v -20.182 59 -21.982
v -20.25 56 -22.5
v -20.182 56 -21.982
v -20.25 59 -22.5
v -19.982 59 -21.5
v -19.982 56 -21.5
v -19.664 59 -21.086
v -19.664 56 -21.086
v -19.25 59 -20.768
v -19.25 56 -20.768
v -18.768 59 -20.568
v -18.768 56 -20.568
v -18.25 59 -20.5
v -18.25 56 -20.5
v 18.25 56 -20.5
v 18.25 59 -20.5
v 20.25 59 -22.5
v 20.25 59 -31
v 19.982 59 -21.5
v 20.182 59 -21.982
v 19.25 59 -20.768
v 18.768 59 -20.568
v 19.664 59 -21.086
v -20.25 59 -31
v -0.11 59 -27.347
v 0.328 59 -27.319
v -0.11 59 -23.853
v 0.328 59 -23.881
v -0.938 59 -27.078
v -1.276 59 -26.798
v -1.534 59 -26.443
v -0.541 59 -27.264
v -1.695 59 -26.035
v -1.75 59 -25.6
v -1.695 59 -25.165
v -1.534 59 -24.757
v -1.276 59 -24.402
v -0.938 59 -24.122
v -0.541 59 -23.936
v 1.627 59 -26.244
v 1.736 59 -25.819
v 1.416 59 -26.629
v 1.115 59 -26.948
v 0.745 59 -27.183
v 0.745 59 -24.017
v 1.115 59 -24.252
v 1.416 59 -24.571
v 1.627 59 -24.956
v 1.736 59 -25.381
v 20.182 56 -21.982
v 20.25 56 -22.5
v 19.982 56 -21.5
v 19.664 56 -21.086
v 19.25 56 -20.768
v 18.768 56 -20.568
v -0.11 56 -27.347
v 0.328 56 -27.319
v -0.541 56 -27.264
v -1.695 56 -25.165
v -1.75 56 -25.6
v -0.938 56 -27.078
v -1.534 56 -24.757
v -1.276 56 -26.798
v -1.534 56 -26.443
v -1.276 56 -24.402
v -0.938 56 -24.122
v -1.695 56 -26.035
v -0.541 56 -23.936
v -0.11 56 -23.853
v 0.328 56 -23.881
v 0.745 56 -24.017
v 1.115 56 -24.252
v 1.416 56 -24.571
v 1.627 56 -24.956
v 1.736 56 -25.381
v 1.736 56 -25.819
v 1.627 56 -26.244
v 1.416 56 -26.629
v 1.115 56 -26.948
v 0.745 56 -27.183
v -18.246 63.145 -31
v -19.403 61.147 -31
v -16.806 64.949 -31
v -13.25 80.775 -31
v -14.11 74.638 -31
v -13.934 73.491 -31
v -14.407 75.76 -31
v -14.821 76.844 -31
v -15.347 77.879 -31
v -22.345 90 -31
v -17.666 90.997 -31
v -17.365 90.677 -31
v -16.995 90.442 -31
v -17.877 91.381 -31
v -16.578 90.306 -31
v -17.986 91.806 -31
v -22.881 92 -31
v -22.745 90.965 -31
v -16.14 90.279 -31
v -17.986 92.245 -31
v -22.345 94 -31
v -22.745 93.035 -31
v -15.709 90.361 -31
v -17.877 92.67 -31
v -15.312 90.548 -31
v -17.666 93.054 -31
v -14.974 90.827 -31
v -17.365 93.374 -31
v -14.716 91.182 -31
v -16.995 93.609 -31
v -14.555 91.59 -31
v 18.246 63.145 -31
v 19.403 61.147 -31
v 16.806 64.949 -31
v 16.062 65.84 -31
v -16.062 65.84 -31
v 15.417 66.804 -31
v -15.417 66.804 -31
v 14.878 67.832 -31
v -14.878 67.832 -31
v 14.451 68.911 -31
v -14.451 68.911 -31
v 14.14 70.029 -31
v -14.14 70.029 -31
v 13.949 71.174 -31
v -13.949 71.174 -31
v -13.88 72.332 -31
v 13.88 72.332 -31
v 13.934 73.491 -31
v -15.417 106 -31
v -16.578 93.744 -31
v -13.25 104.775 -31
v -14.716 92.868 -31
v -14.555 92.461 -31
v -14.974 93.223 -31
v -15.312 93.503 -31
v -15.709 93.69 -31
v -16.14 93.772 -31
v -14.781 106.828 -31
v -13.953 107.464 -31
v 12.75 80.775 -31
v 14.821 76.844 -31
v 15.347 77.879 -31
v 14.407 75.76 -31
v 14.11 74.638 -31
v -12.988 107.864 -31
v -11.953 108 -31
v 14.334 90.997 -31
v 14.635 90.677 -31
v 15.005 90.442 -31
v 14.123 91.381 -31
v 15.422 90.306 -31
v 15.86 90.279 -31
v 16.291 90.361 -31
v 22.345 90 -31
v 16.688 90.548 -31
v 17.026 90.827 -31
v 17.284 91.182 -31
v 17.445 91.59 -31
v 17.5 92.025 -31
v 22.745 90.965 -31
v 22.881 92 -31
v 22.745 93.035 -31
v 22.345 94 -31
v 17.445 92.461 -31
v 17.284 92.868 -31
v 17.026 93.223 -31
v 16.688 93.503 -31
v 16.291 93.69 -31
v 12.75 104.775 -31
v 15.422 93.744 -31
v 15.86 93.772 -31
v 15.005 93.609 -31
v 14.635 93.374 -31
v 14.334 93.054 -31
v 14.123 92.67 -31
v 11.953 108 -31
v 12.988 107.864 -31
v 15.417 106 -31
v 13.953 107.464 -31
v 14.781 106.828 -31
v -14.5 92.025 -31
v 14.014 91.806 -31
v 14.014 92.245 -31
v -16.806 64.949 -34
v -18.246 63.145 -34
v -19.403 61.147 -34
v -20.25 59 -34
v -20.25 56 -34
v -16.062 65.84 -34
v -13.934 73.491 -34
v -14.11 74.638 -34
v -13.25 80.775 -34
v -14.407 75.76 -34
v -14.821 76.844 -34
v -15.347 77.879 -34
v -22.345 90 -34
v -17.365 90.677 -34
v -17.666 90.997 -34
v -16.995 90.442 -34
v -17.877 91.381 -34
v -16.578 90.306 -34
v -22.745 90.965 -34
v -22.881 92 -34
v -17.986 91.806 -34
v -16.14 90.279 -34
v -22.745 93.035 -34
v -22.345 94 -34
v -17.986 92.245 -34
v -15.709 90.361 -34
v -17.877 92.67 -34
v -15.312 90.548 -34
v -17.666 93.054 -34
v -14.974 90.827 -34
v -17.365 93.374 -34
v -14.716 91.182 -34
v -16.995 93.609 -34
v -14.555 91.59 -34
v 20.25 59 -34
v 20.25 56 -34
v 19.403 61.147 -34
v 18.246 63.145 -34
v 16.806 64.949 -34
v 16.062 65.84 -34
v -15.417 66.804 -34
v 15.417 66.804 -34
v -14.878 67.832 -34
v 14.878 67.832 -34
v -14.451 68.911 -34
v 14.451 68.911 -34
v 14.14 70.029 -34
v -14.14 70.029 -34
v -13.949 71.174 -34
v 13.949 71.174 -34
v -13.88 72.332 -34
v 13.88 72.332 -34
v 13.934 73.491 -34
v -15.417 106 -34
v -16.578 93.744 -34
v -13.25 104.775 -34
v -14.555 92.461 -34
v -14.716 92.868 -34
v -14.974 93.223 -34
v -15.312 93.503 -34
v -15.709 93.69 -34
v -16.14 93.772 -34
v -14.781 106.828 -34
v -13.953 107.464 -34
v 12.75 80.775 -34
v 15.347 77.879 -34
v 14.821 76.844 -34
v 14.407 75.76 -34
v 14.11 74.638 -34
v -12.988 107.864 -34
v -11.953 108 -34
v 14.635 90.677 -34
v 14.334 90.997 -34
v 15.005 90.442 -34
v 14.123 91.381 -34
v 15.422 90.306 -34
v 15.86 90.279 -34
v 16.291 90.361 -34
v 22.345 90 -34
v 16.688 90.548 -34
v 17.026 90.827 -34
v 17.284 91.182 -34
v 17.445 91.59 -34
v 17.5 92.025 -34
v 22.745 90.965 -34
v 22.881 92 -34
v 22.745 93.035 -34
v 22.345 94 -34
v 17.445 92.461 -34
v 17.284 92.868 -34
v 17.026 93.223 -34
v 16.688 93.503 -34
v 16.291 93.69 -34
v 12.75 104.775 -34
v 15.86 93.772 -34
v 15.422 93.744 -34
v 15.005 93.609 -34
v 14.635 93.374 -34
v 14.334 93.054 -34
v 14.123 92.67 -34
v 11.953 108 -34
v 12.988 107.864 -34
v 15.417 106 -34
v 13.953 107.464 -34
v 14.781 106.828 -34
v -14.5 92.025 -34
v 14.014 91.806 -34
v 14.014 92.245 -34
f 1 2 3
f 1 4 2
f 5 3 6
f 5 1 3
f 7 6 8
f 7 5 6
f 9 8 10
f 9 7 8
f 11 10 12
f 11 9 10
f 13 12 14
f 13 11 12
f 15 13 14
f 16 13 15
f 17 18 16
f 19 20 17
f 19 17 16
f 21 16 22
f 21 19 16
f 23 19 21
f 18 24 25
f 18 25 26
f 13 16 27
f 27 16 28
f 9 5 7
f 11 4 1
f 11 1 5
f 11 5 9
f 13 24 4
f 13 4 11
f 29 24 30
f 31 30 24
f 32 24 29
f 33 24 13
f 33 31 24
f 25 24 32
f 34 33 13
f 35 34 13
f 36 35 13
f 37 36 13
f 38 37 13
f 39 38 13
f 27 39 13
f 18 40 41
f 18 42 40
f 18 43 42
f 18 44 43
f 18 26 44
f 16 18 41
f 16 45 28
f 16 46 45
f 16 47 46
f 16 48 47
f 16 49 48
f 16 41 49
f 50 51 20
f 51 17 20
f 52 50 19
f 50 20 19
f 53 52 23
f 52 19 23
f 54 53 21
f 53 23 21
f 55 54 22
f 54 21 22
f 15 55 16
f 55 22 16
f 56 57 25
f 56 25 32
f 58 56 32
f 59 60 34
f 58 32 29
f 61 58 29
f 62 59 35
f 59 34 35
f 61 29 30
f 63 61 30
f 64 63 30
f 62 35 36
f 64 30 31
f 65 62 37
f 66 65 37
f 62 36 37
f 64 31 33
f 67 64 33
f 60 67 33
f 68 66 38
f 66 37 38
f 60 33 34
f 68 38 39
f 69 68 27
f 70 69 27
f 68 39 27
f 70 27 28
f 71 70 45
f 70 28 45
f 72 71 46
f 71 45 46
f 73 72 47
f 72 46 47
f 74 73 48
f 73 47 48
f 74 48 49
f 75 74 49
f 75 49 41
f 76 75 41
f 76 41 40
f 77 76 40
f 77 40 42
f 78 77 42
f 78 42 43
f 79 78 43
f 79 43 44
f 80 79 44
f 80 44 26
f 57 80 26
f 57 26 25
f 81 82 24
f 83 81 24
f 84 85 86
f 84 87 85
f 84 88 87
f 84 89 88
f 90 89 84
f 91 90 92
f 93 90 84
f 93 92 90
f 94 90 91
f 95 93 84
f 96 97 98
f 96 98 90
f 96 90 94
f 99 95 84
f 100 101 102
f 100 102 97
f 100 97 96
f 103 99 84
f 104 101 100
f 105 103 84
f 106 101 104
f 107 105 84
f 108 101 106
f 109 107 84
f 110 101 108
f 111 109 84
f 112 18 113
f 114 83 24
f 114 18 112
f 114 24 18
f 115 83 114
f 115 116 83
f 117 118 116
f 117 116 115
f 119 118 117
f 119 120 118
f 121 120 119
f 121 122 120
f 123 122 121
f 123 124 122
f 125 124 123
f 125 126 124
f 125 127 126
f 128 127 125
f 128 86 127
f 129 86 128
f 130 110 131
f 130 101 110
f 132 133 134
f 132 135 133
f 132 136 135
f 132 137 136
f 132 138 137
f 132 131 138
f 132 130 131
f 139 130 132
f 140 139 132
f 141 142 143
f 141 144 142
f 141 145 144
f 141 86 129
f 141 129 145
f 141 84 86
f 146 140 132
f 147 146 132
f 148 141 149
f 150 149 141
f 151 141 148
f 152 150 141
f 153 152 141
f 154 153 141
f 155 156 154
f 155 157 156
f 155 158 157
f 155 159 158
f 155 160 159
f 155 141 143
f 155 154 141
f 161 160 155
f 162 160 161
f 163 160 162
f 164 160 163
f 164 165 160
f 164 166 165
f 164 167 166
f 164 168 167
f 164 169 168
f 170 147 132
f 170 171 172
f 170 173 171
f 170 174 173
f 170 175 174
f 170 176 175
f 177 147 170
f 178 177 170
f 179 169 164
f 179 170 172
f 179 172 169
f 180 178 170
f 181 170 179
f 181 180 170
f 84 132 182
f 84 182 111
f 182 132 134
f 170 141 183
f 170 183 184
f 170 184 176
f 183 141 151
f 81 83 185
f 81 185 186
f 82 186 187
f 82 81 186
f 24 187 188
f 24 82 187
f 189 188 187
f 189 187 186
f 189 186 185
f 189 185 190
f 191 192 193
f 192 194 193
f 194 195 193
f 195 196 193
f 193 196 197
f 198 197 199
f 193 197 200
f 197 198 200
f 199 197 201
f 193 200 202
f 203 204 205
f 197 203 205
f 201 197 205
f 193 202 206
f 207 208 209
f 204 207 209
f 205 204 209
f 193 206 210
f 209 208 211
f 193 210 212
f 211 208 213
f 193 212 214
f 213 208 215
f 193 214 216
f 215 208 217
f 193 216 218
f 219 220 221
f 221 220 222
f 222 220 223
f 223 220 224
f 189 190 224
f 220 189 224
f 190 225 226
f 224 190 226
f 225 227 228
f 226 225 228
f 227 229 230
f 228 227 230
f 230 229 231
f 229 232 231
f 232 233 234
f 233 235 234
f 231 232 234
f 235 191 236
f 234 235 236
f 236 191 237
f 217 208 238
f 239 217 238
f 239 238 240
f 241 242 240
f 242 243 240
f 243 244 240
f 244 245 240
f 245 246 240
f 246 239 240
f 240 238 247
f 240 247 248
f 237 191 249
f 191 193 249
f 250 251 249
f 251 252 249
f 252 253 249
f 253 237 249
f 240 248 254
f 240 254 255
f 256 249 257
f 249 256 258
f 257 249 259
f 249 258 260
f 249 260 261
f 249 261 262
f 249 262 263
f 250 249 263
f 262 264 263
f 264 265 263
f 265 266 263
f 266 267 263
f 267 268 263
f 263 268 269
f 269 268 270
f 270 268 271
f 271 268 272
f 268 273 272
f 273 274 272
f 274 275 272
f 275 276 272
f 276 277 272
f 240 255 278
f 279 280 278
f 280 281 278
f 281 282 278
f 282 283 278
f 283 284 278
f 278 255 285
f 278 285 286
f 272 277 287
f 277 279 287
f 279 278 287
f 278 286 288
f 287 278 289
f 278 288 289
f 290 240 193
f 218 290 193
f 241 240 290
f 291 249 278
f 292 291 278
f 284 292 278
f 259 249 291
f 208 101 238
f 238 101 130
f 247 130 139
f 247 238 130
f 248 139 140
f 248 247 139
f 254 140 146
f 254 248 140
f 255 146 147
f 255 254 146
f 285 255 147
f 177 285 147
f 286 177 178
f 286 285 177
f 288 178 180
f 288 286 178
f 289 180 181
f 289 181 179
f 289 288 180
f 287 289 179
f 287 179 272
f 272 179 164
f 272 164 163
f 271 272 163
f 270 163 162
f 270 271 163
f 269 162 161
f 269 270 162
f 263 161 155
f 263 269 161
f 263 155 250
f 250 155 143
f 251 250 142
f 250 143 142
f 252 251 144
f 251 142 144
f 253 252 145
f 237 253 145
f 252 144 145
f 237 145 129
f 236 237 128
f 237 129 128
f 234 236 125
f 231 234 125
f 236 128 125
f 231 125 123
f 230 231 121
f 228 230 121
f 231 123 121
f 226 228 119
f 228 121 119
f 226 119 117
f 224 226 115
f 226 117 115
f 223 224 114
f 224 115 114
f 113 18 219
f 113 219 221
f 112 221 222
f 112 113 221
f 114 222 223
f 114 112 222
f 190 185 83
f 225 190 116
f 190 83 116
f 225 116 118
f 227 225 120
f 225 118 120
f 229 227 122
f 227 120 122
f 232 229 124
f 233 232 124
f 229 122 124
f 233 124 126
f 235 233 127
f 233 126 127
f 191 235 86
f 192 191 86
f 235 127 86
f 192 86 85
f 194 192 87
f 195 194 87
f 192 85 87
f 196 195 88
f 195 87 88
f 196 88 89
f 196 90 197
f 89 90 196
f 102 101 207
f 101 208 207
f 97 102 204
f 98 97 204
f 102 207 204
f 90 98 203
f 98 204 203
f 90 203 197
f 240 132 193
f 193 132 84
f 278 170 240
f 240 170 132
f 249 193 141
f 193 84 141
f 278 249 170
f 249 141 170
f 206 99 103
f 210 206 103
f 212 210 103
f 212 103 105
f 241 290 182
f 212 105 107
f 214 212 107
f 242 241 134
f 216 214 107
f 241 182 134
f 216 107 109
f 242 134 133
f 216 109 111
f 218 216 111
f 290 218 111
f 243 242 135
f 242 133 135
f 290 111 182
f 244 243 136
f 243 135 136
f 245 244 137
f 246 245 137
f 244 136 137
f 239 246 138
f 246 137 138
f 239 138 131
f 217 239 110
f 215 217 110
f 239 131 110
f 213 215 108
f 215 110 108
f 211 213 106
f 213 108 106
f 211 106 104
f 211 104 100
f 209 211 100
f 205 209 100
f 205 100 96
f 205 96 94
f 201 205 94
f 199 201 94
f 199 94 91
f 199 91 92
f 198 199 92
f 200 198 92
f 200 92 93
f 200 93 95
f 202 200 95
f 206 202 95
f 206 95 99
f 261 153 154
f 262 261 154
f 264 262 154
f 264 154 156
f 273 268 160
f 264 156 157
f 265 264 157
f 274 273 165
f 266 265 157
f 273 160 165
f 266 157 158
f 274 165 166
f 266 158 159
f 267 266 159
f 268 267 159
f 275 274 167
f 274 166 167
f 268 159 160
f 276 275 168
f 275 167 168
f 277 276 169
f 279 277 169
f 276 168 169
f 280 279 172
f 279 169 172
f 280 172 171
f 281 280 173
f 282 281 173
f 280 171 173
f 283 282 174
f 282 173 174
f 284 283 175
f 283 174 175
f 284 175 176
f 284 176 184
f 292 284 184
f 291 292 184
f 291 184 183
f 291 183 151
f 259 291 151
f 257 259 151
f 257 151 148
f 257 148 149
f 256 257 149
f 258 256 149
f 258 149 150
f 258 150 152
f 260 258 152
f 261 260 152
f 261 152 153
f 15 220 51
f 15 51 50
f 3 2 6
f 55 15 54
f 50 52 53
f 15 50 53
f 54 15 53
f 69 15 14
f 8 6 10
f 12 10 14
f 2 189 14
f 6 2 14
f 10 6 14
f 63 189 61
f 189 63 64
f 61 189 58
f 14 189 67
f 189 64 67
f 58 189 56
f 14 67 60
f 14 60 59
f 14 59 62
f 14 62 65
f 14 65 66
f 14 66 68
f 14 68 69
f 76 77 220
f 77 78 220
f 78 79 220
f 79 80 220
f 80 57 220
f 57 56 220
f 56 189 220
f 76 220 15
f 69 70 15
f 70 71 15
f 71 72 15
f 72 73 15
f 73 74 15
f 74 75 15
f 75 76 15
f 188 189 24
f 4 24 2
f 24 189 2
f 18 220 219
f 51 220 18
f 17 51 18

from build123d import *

# Parameters (mm, degrees)
BOX001_W        = 47
BOX001_H        = 52
BOX001_DEPTH    = 3
SKETCH_R        = 1.75
SKETCH_W        = 26
SKETCH_H        = 24
POCKET004_DEPTH = 5
SKETCH001_W     = 66.159115
SKETCH001_H     = 64.322982
POCKET005_DEPTH = 5
FILLET014_R     = 4
BOX002_W        = 40.5
BOX002_H        = 3
BOX002_DEPTH    = 10.5
FILLET015_R     = 2
SKETCH002_R     = 1.75
POCKET006_DEPTH = 5


with BuildPart() as fillet_tongue_base:
    # Box001 → Box001 (new body)
    with BuildSketch(Plane(origin=(-23.5, 56, -34), x_dir=(1, 0, 0), z_dir=(0, 0, 1))):
        with Locations((23.5, 26)):
            Rectangle(BOX001_W, BOX001_H)
    extrude(amount=BOX001_DEPTH)

    # Sketch → Pocket004 (cut)
    with BuildSketch(Plane(origin=(-23.5, 56, -31), x_dir=(1, 0, 0), z_dir=(0, 0, 1))):
        with Locations((7.25, 36.025334)):
            Circle(SKETCH_R)
        with Locations((39.25, 36.025334)):
            Circle(SKETCH_R)
        with Locations((23.25, 36.775334)):
            Rectangle(SKETCH_W, SKETCH_H)
    extrude(amount=-POCKET004_DEPTH, mode=Mode.SUBTRACT)

    # Sketch001 → Pocket005 (cut)
    with BuildSketch(Plane(origin=(-23.5, 56, -31), x_dir=(1, 0, 0), z_dir=(0, 0, 1))):
        with Locations((23.771638, 27.147535)):
            Rectangle(SKETCH001_W, SKETCH001_H)
        with BuildLine():
            Line((0, 36), (9.237604, 52))
            Line((9.237604, 52), (37.762396, 52))
            Line((37.762396, 52), (47, 36))
            Line((47, 36), (38.847126, 21.878809))
            ThreePointArc((38.847126, 21.878809), (37.448559, 15.173629), (40.30581, 8.948554))
            ThreePointArc((43.75, 3), (42.36158, 6.167474), (40.30581, 8.948554))
            Line((43.75, 0), (43.75, 3))
            Line((3.25, 0), (43.75, 0))
            Line((3.25, 0), (3.25, 3))
            ThreePointArc((6.69419, 8.948554), (4.63842, 6.167474), (3.25, 3))
            ThreePointArc((6.69419, 8.948554), (9.551428, 15.17363), (8.152874, 21.878809))
            Line((0, 36), (8.152874, 21.878809))
        make_face(mode=Mode.SUBTRACT)
    extrude(amount=-POCKET005_DEPTH, mode=Mode.SUBTRACT)

    # Fillet014
    fillet014_edges = [fillet_tongue_base.edges().sort_by_distance(p)[0] for p in [
        (-14.262396, 108, -32.5),
        (-23.5, 92, -32.5),
        (14.262396, 108, -32.5),
        (23.5, 92, -32.5),
    ]]
    fillet(fillet014_edges, radius=FILLET014_R)


with BuildPart() as renacuajo_doubleir_tongue:
    # Box002 → Box002 (new body)
    with BuildSketch(Plane(origin=(-20.25, 56, -31), x_dir=(1, 0, 0), z_dir=(0, 0, 1))):
        with Locations((20.25, 1.5)):
            Rectangle(BOX002_W, BOX002_H)
    extrude(amount=BOX002_DEPTH)

    # Fillet015
    fillet015_edges = [renacuajo_doubleir_tongue.edges().sort_by_distance(p)[0] for p in [
        (-20.25, 57.5, -20.5),
        (20.25, 57.5, -20.5),
    ]]
    fillet(fillet015_edges, radius=FILLET015_R)

    # Sketch002 → Pocket006 (cut)
    with BuildSketch(Plane(origin=(0, 59, 0), x_dir=(-1, 0, 0), z_dir=(0, 1, 0))):
        with Locations((0, -25.6)):
            Circle(SKETCH002_R)
    extrude(amount=-POCKET006_DEPTH, mode=Mode.SUBTRACT)

    # Fusion005: union Fillet_tongue_base
    add(fillet_tongue_base.part)


solid = renacuajo_doubleir_tongue.part
